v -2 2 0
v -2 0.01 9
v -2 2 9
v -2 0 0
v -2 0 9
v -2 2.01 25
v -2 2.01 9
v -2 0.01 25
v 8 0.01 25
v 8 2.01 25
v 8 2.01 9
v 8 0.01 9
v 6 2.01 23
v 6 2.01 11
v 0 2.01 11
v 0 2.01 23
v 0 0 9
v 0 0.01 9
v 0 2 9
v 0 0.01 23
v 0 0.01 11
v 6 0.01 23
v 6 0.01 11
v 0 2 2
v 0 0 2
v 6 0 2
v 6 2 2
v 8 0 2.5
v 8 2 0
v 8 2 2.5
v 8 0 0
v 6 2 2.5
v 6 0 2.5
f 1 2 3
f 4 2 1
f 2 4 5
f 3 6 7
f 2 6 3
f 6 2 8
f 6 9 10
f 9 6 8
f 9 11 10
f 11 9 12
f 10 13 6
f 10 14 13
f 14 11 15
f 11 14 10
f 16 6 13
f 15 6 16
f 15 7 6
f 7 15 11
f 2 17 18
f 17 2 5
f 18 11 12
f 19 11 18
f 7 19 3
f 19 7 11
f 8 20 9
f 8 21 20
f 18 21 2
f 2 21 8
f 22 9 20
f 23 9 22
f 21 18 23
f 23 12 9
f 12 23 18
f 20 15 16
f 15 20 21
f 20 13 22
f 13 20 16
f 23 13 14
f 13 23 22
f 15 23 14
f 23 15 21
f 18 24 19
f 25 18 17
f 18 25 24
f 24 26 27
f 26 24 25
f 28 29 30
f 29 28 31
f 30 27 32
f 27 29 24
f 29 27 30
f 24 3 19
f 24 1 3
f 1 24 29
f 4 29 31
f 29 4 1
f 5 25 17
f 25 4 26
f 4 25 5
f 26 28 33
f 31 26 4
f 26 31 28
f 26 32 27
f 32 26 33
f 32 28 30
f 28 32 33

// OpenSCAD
// Generated by SolidPython 1.0.5 on 2021-03-21 23:48:48
$fn = 9;


union() {
	translate(v = [0, 0, 11.0000000000]) {
		difference() {
			translate(v = [-2.0000000000, 0.0100000000, -2.0000000000]) {
				cube(size = [10.0000000000, 2.0000000000, 16.0000000000]);
			}
			cube(size = [6.0000000000, 2.0200000000, 12.0000000000]);
		}
	}
	union() {
		cube(size = [8.0000000000, 2.0000000000, 2.0000000000]);
		translate(v = [-2.0000000000, 0, 0]) {
			cube(size = [2.0000000000, 2.0000000000, 9.0000000000]);
		}
		translate(v = [6.0000000000, 0, 0.5000000000]) {
			cube(size = 2.0000000000);
		}
	}
}
/***********************************************
*********      SolidPython code:      **********
************************************************
 
from solid import *
from solid.utils import *

cm = 10

thickness = 0.2*cm
z_fighting = 0.01
width = 1*cm
top_hook_height = 1.2*cm
top_hook_depth = 0.6*cm
bottom_hook_height = 0.7*cm
bottom_hook_depth = top_hook_depth + thickness

top_hook_hole = cube([top_hook_depth, thickness +
                      z_fighting*2, top_hook_height])
top_hook = translate([-thickness, z_fighting, -thickness])(
    cube([top_hook_depth + thickness*2, thickness, top_hook_height + thickness*2])
) - top_hook_hole

bottom_hook_bottom = cube([bottom_hook_depth, thickness, thickness])
bottom_hook = bottom_hook_bottom + \
    translate([-thickness, 0, 0])(
        cube([thickness, thickness, bottom_hook_height + thickness])
    ) + translate([bottom_hook_depth - thickness, 0, 0.05*cm])(cube(thickness))

hook = (
    translate([0, 0, bottom_hook_height + thickness*2])(top_hook)
    + bottom_hook
)

fn = 9
scad_render_to_file(hook, "hook-for-kitchen-pincer.scad",
                    file_header='$fn = %d;' % fn)
 
 
************************************************/
